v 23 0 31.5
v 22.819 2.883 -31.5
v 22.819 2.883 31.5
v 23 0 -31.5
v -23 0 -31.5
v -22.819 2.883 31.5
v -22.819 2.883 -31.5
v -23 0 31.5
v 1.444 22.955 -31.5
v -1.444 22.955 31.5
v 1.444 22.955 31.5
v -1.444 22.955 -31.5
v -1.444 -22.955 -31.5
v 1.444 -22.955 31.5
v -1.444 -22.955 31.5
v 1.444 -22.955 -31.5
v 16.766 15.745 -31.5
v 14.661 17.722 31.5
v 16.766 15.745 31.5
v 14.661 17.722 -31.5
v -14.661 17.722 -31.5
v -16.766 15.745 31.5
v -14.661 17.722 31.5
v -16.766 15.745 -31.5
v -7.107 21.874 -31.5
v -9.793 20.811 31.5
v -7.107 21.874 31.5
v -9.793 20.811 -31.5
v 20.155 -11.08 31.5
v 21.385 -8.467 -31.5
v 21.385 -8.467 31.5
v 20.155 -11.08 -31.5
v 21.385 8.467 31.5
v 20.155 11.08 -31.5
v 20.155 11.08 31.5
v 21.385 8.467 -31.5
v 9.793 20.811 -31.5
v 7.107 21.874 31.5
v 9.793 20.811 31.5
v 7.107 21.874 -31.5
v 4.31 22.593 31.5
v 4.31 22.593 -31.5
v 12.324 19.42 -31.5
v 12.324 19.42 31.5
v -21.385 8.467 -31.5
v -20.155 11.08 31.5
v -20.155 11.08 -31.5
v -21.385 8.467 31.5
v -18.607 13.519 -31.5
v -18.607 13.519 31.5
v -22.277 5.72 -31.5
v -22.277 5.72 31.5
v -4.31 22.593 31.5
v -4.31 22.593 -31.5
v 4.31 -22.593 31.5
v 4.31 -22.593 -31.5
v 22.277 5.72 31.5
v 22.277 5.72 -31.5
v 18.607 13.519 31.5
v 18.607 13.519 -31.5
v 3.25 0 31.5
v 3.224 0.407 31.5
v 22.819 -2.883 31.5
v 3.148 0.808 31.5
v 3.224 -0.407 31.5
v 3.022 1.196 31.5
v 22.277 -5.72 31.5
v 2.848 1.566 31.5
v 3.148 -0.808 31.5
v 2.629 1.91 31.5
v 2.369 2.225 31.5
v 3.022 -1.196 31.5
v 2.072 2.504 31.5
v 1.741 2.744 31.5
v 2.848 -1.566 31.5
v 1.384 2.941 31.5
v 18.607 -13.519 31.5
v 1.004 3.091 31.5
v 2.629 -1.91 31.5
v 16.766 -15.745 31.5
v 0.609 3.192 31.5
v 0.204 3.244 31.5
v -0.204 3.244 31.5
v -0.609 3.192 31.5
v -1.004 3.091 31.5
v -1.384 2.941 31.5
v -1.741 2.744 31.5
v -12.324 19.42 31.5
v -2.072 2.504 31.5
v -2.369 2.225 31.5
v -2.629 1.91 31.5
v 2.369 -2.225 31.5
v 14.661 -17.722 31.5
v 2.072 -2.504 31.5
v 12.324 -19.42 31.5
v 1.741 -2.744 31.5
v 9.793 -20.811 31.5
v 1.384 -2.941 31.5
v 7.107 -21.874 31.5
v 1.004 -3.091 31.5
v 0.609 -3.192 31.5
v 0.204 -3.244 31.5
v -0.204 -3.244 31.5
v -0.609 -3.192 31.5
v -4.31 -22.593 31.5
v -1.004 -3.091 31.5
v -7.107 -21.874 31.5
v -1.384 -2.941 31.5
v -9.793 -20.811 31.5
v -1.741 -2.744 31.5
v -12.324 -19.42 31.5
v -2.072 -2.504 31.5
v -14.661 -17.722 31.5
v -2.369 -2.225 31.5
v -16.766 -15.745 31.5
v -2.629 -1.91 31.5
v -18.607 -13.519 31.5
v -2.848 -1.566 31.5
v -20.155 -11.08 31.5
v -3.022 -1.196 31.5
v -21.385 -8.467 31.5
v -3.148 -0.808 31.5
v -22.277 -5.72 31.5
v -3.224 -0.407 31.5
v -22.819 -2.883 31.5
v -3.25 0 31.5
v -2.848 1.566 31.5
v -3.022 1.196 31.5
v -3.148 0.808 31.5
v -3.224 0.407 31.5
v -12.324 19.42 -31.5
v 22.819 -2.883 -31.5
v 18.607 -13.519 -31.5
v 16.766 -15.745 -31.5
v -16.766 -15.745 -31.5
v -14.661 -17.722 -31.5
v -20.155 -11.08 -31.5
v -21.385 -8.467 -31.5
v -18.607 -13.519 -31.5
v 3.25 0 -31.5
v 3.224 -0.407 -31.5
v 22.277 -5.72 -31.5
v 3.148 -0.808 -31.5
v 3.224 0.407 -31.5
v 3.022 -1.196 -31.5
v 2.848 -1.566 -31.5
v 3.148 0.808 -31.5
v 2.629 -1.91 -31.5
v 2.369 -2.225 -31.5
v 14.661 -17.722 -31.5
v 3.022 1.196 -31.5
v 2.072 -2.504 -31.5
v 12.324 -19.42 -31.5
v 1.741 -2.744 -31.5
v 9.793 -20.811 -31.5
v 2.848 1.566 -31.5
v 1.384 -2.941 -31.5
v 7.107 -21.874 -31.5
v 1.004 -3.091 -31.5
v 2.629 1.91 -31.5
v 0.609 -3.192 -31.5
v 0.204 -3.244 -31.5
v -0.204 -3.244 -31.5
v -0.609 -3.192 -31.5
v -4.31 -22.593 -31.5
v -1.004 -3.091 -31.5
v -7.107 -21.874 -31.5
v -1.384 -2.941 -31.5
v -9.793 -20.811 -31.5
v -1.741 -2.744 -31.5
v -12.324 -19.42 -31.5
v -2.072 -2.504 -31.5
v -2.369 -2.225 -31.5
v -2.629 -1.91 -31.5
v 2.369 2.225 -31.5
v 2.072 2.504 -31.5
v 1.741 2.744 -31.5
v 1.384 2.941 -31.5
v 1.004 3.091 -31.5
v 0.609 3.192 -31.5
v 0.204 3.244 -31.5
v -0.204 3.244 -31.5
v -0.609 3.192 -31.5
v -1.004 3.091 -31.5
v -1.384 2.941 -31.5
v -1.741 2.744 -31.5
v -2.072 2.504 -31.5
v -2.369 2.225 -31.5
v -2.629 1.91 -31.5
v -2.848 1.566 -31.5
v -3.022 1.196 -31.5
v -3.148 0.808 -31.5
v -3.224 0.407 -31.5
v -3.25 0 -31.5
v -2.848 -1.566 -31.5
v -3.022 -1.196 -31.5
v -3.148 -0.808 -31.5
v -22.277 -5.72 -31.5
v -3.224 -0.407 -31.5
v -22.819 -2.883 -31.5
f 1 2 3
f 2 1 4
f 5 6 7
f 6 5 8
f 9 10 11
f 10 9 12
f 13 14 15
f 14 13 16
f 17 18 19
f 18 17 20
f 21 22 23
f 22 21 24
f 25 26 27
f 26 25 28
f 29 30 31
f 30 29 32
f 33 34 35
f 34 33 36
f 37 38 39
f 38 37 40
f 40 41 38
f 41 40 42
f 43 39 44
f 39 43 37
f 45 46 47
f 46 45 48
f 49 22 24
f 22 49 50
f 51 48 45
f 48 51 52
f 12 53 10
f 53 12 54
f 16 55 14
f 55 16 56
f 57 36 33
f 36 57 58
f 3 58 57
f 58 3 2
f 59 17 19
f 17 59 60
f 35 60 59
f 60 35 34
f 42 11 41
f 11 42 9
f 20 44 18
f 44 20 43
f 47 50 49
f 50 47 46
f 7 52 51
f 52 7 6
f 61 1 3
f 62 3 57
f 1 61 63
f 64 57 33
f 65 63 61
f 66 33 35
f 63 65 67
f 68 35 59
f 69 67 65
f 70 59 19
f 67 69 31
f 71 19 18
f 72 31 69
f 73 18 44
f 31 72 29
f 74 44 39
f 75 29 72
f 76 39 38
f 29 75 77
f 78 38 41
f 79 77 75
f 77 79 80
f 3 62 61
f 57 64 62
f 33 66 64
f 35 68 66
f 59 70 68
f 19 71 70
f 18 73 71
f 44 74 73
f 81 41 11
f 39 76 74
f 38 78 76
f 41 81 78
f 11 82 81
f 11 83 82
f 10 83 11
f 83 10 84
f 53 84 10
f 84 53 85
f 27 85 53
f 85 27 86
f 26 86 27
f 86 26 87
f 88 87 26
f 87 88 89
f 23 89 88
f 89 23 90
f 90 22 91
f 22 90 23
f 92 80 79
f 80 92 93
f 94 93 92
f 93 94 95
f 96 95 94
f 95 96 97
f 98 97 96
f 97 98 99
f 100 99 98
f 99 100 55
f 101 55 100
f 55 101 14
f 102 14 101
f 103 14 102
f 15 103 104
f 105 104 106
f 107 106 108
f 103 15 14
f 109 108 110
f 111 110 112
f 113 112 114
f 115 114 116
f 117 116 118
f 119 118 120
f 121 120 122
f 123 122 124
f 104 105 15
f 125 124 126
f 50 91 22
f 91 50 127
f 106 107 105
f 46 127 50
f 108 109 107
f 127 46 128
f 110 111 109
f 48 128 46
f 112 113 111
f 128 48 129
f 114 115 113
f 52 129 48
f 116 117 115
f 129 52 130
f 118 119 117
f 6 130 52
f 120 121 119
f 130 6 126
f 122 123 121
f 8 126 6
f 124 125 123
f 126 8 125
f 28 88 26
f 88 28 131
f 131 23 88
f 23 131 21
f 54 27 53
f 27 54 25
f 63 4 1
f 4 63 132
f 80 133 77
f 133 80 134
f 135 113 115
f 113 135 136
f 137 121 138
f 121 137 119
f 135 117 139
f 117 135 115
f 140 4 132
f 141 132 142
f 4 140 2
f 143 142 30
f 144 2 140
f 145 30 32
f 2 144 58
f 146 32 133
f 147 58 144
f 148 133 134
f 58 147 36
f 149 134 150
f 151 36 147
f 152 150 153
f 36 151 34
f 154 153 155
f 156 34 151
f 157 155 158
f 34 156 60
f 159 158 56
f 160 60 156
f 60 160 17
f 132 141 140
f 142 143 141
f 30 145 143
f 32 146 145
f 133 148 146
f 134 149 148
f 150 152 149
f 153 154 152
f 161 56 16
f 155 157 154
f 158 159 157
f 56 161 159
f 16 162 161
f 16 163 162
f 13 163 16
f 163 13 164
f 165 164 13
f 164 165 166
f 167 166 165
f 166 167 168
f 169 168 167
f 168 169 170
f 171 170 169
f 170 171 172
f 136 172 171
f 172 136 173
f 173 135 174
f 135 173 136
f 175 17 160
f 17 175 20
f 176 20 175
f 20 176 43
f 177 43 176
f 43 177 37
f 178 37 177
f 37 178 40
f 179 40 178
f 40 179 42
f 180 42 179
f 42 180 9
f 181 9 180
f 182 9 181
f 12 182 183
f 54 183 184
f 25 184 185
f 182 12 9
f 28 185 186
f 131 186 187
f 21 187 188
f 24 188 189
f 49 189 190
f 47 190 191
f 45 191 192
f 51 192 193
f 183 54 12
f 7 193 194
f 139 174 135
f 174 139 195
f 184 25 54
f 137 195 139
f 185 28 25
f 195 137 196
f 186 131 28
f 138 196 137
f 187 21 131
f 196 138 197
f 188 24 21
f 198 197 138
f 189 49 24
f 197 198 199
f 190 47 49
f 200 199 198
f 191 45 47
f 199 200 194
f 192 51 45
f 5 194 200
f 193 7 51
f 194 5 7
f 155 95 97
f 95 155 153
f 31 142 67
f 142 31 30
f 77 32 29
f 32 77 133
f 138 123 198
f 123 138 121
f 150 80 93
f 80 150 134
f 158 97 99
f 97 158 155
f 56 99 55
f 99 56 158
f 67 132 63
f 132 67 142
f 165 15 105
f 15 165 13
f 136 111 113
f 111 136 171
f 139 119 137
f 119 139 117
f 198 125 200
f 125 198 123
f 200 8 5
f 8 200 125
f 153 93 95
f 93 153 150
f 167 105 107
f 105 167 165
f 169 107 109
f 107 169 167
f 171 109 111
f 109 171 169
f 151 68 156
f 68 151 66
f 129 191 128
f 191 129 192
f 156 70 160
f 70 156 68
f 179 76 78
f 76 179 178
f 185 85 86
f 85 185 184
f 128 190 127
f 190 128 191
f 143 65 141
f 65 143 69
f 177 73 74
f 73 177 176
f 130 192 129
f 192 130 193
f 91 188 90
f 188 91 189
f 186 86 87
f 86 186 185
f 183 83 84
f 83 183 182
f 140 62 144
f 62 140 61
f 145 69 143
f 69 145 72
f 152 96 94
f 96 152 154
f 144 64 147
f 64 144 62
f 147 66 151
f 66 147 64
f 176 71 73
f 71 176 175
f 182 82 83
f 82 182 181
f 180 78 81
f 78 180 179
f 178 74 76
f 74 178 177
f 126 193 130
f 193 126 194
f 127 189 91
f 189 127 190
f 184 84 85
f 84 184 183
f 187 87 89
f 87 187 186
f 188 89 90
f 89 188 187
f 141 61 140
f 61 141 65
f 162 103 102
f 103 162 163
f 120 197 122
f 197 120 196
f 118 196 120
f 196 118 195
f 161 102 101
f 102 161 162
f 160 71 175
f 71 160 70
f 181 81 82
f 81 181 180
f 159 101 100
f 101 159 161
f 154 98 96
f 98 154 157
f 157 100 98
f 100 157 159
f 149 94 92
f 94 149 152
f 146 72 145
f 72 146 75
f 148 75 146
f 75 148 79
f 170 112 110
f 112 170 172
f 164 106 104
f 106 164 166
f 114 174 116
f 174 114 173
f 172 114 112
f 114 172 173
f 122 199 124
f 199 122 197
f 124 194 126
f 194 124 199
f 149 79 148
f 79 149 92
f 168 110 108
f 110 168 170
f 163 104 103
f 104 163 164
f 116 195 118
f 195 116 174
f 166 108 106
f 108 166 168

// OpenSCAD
$fn = 50;


difference() {
	union() {
		translate(v = [0, 0, -31.5000000000]) {
			cylinder(h = 63, r = 23.0000000000);
		}
	}
	union() {
		translate(v = [0, 0, -100.0000000000]) {
			cylinder(h = 200, r = 3.2500000000);
		}
	}
}
